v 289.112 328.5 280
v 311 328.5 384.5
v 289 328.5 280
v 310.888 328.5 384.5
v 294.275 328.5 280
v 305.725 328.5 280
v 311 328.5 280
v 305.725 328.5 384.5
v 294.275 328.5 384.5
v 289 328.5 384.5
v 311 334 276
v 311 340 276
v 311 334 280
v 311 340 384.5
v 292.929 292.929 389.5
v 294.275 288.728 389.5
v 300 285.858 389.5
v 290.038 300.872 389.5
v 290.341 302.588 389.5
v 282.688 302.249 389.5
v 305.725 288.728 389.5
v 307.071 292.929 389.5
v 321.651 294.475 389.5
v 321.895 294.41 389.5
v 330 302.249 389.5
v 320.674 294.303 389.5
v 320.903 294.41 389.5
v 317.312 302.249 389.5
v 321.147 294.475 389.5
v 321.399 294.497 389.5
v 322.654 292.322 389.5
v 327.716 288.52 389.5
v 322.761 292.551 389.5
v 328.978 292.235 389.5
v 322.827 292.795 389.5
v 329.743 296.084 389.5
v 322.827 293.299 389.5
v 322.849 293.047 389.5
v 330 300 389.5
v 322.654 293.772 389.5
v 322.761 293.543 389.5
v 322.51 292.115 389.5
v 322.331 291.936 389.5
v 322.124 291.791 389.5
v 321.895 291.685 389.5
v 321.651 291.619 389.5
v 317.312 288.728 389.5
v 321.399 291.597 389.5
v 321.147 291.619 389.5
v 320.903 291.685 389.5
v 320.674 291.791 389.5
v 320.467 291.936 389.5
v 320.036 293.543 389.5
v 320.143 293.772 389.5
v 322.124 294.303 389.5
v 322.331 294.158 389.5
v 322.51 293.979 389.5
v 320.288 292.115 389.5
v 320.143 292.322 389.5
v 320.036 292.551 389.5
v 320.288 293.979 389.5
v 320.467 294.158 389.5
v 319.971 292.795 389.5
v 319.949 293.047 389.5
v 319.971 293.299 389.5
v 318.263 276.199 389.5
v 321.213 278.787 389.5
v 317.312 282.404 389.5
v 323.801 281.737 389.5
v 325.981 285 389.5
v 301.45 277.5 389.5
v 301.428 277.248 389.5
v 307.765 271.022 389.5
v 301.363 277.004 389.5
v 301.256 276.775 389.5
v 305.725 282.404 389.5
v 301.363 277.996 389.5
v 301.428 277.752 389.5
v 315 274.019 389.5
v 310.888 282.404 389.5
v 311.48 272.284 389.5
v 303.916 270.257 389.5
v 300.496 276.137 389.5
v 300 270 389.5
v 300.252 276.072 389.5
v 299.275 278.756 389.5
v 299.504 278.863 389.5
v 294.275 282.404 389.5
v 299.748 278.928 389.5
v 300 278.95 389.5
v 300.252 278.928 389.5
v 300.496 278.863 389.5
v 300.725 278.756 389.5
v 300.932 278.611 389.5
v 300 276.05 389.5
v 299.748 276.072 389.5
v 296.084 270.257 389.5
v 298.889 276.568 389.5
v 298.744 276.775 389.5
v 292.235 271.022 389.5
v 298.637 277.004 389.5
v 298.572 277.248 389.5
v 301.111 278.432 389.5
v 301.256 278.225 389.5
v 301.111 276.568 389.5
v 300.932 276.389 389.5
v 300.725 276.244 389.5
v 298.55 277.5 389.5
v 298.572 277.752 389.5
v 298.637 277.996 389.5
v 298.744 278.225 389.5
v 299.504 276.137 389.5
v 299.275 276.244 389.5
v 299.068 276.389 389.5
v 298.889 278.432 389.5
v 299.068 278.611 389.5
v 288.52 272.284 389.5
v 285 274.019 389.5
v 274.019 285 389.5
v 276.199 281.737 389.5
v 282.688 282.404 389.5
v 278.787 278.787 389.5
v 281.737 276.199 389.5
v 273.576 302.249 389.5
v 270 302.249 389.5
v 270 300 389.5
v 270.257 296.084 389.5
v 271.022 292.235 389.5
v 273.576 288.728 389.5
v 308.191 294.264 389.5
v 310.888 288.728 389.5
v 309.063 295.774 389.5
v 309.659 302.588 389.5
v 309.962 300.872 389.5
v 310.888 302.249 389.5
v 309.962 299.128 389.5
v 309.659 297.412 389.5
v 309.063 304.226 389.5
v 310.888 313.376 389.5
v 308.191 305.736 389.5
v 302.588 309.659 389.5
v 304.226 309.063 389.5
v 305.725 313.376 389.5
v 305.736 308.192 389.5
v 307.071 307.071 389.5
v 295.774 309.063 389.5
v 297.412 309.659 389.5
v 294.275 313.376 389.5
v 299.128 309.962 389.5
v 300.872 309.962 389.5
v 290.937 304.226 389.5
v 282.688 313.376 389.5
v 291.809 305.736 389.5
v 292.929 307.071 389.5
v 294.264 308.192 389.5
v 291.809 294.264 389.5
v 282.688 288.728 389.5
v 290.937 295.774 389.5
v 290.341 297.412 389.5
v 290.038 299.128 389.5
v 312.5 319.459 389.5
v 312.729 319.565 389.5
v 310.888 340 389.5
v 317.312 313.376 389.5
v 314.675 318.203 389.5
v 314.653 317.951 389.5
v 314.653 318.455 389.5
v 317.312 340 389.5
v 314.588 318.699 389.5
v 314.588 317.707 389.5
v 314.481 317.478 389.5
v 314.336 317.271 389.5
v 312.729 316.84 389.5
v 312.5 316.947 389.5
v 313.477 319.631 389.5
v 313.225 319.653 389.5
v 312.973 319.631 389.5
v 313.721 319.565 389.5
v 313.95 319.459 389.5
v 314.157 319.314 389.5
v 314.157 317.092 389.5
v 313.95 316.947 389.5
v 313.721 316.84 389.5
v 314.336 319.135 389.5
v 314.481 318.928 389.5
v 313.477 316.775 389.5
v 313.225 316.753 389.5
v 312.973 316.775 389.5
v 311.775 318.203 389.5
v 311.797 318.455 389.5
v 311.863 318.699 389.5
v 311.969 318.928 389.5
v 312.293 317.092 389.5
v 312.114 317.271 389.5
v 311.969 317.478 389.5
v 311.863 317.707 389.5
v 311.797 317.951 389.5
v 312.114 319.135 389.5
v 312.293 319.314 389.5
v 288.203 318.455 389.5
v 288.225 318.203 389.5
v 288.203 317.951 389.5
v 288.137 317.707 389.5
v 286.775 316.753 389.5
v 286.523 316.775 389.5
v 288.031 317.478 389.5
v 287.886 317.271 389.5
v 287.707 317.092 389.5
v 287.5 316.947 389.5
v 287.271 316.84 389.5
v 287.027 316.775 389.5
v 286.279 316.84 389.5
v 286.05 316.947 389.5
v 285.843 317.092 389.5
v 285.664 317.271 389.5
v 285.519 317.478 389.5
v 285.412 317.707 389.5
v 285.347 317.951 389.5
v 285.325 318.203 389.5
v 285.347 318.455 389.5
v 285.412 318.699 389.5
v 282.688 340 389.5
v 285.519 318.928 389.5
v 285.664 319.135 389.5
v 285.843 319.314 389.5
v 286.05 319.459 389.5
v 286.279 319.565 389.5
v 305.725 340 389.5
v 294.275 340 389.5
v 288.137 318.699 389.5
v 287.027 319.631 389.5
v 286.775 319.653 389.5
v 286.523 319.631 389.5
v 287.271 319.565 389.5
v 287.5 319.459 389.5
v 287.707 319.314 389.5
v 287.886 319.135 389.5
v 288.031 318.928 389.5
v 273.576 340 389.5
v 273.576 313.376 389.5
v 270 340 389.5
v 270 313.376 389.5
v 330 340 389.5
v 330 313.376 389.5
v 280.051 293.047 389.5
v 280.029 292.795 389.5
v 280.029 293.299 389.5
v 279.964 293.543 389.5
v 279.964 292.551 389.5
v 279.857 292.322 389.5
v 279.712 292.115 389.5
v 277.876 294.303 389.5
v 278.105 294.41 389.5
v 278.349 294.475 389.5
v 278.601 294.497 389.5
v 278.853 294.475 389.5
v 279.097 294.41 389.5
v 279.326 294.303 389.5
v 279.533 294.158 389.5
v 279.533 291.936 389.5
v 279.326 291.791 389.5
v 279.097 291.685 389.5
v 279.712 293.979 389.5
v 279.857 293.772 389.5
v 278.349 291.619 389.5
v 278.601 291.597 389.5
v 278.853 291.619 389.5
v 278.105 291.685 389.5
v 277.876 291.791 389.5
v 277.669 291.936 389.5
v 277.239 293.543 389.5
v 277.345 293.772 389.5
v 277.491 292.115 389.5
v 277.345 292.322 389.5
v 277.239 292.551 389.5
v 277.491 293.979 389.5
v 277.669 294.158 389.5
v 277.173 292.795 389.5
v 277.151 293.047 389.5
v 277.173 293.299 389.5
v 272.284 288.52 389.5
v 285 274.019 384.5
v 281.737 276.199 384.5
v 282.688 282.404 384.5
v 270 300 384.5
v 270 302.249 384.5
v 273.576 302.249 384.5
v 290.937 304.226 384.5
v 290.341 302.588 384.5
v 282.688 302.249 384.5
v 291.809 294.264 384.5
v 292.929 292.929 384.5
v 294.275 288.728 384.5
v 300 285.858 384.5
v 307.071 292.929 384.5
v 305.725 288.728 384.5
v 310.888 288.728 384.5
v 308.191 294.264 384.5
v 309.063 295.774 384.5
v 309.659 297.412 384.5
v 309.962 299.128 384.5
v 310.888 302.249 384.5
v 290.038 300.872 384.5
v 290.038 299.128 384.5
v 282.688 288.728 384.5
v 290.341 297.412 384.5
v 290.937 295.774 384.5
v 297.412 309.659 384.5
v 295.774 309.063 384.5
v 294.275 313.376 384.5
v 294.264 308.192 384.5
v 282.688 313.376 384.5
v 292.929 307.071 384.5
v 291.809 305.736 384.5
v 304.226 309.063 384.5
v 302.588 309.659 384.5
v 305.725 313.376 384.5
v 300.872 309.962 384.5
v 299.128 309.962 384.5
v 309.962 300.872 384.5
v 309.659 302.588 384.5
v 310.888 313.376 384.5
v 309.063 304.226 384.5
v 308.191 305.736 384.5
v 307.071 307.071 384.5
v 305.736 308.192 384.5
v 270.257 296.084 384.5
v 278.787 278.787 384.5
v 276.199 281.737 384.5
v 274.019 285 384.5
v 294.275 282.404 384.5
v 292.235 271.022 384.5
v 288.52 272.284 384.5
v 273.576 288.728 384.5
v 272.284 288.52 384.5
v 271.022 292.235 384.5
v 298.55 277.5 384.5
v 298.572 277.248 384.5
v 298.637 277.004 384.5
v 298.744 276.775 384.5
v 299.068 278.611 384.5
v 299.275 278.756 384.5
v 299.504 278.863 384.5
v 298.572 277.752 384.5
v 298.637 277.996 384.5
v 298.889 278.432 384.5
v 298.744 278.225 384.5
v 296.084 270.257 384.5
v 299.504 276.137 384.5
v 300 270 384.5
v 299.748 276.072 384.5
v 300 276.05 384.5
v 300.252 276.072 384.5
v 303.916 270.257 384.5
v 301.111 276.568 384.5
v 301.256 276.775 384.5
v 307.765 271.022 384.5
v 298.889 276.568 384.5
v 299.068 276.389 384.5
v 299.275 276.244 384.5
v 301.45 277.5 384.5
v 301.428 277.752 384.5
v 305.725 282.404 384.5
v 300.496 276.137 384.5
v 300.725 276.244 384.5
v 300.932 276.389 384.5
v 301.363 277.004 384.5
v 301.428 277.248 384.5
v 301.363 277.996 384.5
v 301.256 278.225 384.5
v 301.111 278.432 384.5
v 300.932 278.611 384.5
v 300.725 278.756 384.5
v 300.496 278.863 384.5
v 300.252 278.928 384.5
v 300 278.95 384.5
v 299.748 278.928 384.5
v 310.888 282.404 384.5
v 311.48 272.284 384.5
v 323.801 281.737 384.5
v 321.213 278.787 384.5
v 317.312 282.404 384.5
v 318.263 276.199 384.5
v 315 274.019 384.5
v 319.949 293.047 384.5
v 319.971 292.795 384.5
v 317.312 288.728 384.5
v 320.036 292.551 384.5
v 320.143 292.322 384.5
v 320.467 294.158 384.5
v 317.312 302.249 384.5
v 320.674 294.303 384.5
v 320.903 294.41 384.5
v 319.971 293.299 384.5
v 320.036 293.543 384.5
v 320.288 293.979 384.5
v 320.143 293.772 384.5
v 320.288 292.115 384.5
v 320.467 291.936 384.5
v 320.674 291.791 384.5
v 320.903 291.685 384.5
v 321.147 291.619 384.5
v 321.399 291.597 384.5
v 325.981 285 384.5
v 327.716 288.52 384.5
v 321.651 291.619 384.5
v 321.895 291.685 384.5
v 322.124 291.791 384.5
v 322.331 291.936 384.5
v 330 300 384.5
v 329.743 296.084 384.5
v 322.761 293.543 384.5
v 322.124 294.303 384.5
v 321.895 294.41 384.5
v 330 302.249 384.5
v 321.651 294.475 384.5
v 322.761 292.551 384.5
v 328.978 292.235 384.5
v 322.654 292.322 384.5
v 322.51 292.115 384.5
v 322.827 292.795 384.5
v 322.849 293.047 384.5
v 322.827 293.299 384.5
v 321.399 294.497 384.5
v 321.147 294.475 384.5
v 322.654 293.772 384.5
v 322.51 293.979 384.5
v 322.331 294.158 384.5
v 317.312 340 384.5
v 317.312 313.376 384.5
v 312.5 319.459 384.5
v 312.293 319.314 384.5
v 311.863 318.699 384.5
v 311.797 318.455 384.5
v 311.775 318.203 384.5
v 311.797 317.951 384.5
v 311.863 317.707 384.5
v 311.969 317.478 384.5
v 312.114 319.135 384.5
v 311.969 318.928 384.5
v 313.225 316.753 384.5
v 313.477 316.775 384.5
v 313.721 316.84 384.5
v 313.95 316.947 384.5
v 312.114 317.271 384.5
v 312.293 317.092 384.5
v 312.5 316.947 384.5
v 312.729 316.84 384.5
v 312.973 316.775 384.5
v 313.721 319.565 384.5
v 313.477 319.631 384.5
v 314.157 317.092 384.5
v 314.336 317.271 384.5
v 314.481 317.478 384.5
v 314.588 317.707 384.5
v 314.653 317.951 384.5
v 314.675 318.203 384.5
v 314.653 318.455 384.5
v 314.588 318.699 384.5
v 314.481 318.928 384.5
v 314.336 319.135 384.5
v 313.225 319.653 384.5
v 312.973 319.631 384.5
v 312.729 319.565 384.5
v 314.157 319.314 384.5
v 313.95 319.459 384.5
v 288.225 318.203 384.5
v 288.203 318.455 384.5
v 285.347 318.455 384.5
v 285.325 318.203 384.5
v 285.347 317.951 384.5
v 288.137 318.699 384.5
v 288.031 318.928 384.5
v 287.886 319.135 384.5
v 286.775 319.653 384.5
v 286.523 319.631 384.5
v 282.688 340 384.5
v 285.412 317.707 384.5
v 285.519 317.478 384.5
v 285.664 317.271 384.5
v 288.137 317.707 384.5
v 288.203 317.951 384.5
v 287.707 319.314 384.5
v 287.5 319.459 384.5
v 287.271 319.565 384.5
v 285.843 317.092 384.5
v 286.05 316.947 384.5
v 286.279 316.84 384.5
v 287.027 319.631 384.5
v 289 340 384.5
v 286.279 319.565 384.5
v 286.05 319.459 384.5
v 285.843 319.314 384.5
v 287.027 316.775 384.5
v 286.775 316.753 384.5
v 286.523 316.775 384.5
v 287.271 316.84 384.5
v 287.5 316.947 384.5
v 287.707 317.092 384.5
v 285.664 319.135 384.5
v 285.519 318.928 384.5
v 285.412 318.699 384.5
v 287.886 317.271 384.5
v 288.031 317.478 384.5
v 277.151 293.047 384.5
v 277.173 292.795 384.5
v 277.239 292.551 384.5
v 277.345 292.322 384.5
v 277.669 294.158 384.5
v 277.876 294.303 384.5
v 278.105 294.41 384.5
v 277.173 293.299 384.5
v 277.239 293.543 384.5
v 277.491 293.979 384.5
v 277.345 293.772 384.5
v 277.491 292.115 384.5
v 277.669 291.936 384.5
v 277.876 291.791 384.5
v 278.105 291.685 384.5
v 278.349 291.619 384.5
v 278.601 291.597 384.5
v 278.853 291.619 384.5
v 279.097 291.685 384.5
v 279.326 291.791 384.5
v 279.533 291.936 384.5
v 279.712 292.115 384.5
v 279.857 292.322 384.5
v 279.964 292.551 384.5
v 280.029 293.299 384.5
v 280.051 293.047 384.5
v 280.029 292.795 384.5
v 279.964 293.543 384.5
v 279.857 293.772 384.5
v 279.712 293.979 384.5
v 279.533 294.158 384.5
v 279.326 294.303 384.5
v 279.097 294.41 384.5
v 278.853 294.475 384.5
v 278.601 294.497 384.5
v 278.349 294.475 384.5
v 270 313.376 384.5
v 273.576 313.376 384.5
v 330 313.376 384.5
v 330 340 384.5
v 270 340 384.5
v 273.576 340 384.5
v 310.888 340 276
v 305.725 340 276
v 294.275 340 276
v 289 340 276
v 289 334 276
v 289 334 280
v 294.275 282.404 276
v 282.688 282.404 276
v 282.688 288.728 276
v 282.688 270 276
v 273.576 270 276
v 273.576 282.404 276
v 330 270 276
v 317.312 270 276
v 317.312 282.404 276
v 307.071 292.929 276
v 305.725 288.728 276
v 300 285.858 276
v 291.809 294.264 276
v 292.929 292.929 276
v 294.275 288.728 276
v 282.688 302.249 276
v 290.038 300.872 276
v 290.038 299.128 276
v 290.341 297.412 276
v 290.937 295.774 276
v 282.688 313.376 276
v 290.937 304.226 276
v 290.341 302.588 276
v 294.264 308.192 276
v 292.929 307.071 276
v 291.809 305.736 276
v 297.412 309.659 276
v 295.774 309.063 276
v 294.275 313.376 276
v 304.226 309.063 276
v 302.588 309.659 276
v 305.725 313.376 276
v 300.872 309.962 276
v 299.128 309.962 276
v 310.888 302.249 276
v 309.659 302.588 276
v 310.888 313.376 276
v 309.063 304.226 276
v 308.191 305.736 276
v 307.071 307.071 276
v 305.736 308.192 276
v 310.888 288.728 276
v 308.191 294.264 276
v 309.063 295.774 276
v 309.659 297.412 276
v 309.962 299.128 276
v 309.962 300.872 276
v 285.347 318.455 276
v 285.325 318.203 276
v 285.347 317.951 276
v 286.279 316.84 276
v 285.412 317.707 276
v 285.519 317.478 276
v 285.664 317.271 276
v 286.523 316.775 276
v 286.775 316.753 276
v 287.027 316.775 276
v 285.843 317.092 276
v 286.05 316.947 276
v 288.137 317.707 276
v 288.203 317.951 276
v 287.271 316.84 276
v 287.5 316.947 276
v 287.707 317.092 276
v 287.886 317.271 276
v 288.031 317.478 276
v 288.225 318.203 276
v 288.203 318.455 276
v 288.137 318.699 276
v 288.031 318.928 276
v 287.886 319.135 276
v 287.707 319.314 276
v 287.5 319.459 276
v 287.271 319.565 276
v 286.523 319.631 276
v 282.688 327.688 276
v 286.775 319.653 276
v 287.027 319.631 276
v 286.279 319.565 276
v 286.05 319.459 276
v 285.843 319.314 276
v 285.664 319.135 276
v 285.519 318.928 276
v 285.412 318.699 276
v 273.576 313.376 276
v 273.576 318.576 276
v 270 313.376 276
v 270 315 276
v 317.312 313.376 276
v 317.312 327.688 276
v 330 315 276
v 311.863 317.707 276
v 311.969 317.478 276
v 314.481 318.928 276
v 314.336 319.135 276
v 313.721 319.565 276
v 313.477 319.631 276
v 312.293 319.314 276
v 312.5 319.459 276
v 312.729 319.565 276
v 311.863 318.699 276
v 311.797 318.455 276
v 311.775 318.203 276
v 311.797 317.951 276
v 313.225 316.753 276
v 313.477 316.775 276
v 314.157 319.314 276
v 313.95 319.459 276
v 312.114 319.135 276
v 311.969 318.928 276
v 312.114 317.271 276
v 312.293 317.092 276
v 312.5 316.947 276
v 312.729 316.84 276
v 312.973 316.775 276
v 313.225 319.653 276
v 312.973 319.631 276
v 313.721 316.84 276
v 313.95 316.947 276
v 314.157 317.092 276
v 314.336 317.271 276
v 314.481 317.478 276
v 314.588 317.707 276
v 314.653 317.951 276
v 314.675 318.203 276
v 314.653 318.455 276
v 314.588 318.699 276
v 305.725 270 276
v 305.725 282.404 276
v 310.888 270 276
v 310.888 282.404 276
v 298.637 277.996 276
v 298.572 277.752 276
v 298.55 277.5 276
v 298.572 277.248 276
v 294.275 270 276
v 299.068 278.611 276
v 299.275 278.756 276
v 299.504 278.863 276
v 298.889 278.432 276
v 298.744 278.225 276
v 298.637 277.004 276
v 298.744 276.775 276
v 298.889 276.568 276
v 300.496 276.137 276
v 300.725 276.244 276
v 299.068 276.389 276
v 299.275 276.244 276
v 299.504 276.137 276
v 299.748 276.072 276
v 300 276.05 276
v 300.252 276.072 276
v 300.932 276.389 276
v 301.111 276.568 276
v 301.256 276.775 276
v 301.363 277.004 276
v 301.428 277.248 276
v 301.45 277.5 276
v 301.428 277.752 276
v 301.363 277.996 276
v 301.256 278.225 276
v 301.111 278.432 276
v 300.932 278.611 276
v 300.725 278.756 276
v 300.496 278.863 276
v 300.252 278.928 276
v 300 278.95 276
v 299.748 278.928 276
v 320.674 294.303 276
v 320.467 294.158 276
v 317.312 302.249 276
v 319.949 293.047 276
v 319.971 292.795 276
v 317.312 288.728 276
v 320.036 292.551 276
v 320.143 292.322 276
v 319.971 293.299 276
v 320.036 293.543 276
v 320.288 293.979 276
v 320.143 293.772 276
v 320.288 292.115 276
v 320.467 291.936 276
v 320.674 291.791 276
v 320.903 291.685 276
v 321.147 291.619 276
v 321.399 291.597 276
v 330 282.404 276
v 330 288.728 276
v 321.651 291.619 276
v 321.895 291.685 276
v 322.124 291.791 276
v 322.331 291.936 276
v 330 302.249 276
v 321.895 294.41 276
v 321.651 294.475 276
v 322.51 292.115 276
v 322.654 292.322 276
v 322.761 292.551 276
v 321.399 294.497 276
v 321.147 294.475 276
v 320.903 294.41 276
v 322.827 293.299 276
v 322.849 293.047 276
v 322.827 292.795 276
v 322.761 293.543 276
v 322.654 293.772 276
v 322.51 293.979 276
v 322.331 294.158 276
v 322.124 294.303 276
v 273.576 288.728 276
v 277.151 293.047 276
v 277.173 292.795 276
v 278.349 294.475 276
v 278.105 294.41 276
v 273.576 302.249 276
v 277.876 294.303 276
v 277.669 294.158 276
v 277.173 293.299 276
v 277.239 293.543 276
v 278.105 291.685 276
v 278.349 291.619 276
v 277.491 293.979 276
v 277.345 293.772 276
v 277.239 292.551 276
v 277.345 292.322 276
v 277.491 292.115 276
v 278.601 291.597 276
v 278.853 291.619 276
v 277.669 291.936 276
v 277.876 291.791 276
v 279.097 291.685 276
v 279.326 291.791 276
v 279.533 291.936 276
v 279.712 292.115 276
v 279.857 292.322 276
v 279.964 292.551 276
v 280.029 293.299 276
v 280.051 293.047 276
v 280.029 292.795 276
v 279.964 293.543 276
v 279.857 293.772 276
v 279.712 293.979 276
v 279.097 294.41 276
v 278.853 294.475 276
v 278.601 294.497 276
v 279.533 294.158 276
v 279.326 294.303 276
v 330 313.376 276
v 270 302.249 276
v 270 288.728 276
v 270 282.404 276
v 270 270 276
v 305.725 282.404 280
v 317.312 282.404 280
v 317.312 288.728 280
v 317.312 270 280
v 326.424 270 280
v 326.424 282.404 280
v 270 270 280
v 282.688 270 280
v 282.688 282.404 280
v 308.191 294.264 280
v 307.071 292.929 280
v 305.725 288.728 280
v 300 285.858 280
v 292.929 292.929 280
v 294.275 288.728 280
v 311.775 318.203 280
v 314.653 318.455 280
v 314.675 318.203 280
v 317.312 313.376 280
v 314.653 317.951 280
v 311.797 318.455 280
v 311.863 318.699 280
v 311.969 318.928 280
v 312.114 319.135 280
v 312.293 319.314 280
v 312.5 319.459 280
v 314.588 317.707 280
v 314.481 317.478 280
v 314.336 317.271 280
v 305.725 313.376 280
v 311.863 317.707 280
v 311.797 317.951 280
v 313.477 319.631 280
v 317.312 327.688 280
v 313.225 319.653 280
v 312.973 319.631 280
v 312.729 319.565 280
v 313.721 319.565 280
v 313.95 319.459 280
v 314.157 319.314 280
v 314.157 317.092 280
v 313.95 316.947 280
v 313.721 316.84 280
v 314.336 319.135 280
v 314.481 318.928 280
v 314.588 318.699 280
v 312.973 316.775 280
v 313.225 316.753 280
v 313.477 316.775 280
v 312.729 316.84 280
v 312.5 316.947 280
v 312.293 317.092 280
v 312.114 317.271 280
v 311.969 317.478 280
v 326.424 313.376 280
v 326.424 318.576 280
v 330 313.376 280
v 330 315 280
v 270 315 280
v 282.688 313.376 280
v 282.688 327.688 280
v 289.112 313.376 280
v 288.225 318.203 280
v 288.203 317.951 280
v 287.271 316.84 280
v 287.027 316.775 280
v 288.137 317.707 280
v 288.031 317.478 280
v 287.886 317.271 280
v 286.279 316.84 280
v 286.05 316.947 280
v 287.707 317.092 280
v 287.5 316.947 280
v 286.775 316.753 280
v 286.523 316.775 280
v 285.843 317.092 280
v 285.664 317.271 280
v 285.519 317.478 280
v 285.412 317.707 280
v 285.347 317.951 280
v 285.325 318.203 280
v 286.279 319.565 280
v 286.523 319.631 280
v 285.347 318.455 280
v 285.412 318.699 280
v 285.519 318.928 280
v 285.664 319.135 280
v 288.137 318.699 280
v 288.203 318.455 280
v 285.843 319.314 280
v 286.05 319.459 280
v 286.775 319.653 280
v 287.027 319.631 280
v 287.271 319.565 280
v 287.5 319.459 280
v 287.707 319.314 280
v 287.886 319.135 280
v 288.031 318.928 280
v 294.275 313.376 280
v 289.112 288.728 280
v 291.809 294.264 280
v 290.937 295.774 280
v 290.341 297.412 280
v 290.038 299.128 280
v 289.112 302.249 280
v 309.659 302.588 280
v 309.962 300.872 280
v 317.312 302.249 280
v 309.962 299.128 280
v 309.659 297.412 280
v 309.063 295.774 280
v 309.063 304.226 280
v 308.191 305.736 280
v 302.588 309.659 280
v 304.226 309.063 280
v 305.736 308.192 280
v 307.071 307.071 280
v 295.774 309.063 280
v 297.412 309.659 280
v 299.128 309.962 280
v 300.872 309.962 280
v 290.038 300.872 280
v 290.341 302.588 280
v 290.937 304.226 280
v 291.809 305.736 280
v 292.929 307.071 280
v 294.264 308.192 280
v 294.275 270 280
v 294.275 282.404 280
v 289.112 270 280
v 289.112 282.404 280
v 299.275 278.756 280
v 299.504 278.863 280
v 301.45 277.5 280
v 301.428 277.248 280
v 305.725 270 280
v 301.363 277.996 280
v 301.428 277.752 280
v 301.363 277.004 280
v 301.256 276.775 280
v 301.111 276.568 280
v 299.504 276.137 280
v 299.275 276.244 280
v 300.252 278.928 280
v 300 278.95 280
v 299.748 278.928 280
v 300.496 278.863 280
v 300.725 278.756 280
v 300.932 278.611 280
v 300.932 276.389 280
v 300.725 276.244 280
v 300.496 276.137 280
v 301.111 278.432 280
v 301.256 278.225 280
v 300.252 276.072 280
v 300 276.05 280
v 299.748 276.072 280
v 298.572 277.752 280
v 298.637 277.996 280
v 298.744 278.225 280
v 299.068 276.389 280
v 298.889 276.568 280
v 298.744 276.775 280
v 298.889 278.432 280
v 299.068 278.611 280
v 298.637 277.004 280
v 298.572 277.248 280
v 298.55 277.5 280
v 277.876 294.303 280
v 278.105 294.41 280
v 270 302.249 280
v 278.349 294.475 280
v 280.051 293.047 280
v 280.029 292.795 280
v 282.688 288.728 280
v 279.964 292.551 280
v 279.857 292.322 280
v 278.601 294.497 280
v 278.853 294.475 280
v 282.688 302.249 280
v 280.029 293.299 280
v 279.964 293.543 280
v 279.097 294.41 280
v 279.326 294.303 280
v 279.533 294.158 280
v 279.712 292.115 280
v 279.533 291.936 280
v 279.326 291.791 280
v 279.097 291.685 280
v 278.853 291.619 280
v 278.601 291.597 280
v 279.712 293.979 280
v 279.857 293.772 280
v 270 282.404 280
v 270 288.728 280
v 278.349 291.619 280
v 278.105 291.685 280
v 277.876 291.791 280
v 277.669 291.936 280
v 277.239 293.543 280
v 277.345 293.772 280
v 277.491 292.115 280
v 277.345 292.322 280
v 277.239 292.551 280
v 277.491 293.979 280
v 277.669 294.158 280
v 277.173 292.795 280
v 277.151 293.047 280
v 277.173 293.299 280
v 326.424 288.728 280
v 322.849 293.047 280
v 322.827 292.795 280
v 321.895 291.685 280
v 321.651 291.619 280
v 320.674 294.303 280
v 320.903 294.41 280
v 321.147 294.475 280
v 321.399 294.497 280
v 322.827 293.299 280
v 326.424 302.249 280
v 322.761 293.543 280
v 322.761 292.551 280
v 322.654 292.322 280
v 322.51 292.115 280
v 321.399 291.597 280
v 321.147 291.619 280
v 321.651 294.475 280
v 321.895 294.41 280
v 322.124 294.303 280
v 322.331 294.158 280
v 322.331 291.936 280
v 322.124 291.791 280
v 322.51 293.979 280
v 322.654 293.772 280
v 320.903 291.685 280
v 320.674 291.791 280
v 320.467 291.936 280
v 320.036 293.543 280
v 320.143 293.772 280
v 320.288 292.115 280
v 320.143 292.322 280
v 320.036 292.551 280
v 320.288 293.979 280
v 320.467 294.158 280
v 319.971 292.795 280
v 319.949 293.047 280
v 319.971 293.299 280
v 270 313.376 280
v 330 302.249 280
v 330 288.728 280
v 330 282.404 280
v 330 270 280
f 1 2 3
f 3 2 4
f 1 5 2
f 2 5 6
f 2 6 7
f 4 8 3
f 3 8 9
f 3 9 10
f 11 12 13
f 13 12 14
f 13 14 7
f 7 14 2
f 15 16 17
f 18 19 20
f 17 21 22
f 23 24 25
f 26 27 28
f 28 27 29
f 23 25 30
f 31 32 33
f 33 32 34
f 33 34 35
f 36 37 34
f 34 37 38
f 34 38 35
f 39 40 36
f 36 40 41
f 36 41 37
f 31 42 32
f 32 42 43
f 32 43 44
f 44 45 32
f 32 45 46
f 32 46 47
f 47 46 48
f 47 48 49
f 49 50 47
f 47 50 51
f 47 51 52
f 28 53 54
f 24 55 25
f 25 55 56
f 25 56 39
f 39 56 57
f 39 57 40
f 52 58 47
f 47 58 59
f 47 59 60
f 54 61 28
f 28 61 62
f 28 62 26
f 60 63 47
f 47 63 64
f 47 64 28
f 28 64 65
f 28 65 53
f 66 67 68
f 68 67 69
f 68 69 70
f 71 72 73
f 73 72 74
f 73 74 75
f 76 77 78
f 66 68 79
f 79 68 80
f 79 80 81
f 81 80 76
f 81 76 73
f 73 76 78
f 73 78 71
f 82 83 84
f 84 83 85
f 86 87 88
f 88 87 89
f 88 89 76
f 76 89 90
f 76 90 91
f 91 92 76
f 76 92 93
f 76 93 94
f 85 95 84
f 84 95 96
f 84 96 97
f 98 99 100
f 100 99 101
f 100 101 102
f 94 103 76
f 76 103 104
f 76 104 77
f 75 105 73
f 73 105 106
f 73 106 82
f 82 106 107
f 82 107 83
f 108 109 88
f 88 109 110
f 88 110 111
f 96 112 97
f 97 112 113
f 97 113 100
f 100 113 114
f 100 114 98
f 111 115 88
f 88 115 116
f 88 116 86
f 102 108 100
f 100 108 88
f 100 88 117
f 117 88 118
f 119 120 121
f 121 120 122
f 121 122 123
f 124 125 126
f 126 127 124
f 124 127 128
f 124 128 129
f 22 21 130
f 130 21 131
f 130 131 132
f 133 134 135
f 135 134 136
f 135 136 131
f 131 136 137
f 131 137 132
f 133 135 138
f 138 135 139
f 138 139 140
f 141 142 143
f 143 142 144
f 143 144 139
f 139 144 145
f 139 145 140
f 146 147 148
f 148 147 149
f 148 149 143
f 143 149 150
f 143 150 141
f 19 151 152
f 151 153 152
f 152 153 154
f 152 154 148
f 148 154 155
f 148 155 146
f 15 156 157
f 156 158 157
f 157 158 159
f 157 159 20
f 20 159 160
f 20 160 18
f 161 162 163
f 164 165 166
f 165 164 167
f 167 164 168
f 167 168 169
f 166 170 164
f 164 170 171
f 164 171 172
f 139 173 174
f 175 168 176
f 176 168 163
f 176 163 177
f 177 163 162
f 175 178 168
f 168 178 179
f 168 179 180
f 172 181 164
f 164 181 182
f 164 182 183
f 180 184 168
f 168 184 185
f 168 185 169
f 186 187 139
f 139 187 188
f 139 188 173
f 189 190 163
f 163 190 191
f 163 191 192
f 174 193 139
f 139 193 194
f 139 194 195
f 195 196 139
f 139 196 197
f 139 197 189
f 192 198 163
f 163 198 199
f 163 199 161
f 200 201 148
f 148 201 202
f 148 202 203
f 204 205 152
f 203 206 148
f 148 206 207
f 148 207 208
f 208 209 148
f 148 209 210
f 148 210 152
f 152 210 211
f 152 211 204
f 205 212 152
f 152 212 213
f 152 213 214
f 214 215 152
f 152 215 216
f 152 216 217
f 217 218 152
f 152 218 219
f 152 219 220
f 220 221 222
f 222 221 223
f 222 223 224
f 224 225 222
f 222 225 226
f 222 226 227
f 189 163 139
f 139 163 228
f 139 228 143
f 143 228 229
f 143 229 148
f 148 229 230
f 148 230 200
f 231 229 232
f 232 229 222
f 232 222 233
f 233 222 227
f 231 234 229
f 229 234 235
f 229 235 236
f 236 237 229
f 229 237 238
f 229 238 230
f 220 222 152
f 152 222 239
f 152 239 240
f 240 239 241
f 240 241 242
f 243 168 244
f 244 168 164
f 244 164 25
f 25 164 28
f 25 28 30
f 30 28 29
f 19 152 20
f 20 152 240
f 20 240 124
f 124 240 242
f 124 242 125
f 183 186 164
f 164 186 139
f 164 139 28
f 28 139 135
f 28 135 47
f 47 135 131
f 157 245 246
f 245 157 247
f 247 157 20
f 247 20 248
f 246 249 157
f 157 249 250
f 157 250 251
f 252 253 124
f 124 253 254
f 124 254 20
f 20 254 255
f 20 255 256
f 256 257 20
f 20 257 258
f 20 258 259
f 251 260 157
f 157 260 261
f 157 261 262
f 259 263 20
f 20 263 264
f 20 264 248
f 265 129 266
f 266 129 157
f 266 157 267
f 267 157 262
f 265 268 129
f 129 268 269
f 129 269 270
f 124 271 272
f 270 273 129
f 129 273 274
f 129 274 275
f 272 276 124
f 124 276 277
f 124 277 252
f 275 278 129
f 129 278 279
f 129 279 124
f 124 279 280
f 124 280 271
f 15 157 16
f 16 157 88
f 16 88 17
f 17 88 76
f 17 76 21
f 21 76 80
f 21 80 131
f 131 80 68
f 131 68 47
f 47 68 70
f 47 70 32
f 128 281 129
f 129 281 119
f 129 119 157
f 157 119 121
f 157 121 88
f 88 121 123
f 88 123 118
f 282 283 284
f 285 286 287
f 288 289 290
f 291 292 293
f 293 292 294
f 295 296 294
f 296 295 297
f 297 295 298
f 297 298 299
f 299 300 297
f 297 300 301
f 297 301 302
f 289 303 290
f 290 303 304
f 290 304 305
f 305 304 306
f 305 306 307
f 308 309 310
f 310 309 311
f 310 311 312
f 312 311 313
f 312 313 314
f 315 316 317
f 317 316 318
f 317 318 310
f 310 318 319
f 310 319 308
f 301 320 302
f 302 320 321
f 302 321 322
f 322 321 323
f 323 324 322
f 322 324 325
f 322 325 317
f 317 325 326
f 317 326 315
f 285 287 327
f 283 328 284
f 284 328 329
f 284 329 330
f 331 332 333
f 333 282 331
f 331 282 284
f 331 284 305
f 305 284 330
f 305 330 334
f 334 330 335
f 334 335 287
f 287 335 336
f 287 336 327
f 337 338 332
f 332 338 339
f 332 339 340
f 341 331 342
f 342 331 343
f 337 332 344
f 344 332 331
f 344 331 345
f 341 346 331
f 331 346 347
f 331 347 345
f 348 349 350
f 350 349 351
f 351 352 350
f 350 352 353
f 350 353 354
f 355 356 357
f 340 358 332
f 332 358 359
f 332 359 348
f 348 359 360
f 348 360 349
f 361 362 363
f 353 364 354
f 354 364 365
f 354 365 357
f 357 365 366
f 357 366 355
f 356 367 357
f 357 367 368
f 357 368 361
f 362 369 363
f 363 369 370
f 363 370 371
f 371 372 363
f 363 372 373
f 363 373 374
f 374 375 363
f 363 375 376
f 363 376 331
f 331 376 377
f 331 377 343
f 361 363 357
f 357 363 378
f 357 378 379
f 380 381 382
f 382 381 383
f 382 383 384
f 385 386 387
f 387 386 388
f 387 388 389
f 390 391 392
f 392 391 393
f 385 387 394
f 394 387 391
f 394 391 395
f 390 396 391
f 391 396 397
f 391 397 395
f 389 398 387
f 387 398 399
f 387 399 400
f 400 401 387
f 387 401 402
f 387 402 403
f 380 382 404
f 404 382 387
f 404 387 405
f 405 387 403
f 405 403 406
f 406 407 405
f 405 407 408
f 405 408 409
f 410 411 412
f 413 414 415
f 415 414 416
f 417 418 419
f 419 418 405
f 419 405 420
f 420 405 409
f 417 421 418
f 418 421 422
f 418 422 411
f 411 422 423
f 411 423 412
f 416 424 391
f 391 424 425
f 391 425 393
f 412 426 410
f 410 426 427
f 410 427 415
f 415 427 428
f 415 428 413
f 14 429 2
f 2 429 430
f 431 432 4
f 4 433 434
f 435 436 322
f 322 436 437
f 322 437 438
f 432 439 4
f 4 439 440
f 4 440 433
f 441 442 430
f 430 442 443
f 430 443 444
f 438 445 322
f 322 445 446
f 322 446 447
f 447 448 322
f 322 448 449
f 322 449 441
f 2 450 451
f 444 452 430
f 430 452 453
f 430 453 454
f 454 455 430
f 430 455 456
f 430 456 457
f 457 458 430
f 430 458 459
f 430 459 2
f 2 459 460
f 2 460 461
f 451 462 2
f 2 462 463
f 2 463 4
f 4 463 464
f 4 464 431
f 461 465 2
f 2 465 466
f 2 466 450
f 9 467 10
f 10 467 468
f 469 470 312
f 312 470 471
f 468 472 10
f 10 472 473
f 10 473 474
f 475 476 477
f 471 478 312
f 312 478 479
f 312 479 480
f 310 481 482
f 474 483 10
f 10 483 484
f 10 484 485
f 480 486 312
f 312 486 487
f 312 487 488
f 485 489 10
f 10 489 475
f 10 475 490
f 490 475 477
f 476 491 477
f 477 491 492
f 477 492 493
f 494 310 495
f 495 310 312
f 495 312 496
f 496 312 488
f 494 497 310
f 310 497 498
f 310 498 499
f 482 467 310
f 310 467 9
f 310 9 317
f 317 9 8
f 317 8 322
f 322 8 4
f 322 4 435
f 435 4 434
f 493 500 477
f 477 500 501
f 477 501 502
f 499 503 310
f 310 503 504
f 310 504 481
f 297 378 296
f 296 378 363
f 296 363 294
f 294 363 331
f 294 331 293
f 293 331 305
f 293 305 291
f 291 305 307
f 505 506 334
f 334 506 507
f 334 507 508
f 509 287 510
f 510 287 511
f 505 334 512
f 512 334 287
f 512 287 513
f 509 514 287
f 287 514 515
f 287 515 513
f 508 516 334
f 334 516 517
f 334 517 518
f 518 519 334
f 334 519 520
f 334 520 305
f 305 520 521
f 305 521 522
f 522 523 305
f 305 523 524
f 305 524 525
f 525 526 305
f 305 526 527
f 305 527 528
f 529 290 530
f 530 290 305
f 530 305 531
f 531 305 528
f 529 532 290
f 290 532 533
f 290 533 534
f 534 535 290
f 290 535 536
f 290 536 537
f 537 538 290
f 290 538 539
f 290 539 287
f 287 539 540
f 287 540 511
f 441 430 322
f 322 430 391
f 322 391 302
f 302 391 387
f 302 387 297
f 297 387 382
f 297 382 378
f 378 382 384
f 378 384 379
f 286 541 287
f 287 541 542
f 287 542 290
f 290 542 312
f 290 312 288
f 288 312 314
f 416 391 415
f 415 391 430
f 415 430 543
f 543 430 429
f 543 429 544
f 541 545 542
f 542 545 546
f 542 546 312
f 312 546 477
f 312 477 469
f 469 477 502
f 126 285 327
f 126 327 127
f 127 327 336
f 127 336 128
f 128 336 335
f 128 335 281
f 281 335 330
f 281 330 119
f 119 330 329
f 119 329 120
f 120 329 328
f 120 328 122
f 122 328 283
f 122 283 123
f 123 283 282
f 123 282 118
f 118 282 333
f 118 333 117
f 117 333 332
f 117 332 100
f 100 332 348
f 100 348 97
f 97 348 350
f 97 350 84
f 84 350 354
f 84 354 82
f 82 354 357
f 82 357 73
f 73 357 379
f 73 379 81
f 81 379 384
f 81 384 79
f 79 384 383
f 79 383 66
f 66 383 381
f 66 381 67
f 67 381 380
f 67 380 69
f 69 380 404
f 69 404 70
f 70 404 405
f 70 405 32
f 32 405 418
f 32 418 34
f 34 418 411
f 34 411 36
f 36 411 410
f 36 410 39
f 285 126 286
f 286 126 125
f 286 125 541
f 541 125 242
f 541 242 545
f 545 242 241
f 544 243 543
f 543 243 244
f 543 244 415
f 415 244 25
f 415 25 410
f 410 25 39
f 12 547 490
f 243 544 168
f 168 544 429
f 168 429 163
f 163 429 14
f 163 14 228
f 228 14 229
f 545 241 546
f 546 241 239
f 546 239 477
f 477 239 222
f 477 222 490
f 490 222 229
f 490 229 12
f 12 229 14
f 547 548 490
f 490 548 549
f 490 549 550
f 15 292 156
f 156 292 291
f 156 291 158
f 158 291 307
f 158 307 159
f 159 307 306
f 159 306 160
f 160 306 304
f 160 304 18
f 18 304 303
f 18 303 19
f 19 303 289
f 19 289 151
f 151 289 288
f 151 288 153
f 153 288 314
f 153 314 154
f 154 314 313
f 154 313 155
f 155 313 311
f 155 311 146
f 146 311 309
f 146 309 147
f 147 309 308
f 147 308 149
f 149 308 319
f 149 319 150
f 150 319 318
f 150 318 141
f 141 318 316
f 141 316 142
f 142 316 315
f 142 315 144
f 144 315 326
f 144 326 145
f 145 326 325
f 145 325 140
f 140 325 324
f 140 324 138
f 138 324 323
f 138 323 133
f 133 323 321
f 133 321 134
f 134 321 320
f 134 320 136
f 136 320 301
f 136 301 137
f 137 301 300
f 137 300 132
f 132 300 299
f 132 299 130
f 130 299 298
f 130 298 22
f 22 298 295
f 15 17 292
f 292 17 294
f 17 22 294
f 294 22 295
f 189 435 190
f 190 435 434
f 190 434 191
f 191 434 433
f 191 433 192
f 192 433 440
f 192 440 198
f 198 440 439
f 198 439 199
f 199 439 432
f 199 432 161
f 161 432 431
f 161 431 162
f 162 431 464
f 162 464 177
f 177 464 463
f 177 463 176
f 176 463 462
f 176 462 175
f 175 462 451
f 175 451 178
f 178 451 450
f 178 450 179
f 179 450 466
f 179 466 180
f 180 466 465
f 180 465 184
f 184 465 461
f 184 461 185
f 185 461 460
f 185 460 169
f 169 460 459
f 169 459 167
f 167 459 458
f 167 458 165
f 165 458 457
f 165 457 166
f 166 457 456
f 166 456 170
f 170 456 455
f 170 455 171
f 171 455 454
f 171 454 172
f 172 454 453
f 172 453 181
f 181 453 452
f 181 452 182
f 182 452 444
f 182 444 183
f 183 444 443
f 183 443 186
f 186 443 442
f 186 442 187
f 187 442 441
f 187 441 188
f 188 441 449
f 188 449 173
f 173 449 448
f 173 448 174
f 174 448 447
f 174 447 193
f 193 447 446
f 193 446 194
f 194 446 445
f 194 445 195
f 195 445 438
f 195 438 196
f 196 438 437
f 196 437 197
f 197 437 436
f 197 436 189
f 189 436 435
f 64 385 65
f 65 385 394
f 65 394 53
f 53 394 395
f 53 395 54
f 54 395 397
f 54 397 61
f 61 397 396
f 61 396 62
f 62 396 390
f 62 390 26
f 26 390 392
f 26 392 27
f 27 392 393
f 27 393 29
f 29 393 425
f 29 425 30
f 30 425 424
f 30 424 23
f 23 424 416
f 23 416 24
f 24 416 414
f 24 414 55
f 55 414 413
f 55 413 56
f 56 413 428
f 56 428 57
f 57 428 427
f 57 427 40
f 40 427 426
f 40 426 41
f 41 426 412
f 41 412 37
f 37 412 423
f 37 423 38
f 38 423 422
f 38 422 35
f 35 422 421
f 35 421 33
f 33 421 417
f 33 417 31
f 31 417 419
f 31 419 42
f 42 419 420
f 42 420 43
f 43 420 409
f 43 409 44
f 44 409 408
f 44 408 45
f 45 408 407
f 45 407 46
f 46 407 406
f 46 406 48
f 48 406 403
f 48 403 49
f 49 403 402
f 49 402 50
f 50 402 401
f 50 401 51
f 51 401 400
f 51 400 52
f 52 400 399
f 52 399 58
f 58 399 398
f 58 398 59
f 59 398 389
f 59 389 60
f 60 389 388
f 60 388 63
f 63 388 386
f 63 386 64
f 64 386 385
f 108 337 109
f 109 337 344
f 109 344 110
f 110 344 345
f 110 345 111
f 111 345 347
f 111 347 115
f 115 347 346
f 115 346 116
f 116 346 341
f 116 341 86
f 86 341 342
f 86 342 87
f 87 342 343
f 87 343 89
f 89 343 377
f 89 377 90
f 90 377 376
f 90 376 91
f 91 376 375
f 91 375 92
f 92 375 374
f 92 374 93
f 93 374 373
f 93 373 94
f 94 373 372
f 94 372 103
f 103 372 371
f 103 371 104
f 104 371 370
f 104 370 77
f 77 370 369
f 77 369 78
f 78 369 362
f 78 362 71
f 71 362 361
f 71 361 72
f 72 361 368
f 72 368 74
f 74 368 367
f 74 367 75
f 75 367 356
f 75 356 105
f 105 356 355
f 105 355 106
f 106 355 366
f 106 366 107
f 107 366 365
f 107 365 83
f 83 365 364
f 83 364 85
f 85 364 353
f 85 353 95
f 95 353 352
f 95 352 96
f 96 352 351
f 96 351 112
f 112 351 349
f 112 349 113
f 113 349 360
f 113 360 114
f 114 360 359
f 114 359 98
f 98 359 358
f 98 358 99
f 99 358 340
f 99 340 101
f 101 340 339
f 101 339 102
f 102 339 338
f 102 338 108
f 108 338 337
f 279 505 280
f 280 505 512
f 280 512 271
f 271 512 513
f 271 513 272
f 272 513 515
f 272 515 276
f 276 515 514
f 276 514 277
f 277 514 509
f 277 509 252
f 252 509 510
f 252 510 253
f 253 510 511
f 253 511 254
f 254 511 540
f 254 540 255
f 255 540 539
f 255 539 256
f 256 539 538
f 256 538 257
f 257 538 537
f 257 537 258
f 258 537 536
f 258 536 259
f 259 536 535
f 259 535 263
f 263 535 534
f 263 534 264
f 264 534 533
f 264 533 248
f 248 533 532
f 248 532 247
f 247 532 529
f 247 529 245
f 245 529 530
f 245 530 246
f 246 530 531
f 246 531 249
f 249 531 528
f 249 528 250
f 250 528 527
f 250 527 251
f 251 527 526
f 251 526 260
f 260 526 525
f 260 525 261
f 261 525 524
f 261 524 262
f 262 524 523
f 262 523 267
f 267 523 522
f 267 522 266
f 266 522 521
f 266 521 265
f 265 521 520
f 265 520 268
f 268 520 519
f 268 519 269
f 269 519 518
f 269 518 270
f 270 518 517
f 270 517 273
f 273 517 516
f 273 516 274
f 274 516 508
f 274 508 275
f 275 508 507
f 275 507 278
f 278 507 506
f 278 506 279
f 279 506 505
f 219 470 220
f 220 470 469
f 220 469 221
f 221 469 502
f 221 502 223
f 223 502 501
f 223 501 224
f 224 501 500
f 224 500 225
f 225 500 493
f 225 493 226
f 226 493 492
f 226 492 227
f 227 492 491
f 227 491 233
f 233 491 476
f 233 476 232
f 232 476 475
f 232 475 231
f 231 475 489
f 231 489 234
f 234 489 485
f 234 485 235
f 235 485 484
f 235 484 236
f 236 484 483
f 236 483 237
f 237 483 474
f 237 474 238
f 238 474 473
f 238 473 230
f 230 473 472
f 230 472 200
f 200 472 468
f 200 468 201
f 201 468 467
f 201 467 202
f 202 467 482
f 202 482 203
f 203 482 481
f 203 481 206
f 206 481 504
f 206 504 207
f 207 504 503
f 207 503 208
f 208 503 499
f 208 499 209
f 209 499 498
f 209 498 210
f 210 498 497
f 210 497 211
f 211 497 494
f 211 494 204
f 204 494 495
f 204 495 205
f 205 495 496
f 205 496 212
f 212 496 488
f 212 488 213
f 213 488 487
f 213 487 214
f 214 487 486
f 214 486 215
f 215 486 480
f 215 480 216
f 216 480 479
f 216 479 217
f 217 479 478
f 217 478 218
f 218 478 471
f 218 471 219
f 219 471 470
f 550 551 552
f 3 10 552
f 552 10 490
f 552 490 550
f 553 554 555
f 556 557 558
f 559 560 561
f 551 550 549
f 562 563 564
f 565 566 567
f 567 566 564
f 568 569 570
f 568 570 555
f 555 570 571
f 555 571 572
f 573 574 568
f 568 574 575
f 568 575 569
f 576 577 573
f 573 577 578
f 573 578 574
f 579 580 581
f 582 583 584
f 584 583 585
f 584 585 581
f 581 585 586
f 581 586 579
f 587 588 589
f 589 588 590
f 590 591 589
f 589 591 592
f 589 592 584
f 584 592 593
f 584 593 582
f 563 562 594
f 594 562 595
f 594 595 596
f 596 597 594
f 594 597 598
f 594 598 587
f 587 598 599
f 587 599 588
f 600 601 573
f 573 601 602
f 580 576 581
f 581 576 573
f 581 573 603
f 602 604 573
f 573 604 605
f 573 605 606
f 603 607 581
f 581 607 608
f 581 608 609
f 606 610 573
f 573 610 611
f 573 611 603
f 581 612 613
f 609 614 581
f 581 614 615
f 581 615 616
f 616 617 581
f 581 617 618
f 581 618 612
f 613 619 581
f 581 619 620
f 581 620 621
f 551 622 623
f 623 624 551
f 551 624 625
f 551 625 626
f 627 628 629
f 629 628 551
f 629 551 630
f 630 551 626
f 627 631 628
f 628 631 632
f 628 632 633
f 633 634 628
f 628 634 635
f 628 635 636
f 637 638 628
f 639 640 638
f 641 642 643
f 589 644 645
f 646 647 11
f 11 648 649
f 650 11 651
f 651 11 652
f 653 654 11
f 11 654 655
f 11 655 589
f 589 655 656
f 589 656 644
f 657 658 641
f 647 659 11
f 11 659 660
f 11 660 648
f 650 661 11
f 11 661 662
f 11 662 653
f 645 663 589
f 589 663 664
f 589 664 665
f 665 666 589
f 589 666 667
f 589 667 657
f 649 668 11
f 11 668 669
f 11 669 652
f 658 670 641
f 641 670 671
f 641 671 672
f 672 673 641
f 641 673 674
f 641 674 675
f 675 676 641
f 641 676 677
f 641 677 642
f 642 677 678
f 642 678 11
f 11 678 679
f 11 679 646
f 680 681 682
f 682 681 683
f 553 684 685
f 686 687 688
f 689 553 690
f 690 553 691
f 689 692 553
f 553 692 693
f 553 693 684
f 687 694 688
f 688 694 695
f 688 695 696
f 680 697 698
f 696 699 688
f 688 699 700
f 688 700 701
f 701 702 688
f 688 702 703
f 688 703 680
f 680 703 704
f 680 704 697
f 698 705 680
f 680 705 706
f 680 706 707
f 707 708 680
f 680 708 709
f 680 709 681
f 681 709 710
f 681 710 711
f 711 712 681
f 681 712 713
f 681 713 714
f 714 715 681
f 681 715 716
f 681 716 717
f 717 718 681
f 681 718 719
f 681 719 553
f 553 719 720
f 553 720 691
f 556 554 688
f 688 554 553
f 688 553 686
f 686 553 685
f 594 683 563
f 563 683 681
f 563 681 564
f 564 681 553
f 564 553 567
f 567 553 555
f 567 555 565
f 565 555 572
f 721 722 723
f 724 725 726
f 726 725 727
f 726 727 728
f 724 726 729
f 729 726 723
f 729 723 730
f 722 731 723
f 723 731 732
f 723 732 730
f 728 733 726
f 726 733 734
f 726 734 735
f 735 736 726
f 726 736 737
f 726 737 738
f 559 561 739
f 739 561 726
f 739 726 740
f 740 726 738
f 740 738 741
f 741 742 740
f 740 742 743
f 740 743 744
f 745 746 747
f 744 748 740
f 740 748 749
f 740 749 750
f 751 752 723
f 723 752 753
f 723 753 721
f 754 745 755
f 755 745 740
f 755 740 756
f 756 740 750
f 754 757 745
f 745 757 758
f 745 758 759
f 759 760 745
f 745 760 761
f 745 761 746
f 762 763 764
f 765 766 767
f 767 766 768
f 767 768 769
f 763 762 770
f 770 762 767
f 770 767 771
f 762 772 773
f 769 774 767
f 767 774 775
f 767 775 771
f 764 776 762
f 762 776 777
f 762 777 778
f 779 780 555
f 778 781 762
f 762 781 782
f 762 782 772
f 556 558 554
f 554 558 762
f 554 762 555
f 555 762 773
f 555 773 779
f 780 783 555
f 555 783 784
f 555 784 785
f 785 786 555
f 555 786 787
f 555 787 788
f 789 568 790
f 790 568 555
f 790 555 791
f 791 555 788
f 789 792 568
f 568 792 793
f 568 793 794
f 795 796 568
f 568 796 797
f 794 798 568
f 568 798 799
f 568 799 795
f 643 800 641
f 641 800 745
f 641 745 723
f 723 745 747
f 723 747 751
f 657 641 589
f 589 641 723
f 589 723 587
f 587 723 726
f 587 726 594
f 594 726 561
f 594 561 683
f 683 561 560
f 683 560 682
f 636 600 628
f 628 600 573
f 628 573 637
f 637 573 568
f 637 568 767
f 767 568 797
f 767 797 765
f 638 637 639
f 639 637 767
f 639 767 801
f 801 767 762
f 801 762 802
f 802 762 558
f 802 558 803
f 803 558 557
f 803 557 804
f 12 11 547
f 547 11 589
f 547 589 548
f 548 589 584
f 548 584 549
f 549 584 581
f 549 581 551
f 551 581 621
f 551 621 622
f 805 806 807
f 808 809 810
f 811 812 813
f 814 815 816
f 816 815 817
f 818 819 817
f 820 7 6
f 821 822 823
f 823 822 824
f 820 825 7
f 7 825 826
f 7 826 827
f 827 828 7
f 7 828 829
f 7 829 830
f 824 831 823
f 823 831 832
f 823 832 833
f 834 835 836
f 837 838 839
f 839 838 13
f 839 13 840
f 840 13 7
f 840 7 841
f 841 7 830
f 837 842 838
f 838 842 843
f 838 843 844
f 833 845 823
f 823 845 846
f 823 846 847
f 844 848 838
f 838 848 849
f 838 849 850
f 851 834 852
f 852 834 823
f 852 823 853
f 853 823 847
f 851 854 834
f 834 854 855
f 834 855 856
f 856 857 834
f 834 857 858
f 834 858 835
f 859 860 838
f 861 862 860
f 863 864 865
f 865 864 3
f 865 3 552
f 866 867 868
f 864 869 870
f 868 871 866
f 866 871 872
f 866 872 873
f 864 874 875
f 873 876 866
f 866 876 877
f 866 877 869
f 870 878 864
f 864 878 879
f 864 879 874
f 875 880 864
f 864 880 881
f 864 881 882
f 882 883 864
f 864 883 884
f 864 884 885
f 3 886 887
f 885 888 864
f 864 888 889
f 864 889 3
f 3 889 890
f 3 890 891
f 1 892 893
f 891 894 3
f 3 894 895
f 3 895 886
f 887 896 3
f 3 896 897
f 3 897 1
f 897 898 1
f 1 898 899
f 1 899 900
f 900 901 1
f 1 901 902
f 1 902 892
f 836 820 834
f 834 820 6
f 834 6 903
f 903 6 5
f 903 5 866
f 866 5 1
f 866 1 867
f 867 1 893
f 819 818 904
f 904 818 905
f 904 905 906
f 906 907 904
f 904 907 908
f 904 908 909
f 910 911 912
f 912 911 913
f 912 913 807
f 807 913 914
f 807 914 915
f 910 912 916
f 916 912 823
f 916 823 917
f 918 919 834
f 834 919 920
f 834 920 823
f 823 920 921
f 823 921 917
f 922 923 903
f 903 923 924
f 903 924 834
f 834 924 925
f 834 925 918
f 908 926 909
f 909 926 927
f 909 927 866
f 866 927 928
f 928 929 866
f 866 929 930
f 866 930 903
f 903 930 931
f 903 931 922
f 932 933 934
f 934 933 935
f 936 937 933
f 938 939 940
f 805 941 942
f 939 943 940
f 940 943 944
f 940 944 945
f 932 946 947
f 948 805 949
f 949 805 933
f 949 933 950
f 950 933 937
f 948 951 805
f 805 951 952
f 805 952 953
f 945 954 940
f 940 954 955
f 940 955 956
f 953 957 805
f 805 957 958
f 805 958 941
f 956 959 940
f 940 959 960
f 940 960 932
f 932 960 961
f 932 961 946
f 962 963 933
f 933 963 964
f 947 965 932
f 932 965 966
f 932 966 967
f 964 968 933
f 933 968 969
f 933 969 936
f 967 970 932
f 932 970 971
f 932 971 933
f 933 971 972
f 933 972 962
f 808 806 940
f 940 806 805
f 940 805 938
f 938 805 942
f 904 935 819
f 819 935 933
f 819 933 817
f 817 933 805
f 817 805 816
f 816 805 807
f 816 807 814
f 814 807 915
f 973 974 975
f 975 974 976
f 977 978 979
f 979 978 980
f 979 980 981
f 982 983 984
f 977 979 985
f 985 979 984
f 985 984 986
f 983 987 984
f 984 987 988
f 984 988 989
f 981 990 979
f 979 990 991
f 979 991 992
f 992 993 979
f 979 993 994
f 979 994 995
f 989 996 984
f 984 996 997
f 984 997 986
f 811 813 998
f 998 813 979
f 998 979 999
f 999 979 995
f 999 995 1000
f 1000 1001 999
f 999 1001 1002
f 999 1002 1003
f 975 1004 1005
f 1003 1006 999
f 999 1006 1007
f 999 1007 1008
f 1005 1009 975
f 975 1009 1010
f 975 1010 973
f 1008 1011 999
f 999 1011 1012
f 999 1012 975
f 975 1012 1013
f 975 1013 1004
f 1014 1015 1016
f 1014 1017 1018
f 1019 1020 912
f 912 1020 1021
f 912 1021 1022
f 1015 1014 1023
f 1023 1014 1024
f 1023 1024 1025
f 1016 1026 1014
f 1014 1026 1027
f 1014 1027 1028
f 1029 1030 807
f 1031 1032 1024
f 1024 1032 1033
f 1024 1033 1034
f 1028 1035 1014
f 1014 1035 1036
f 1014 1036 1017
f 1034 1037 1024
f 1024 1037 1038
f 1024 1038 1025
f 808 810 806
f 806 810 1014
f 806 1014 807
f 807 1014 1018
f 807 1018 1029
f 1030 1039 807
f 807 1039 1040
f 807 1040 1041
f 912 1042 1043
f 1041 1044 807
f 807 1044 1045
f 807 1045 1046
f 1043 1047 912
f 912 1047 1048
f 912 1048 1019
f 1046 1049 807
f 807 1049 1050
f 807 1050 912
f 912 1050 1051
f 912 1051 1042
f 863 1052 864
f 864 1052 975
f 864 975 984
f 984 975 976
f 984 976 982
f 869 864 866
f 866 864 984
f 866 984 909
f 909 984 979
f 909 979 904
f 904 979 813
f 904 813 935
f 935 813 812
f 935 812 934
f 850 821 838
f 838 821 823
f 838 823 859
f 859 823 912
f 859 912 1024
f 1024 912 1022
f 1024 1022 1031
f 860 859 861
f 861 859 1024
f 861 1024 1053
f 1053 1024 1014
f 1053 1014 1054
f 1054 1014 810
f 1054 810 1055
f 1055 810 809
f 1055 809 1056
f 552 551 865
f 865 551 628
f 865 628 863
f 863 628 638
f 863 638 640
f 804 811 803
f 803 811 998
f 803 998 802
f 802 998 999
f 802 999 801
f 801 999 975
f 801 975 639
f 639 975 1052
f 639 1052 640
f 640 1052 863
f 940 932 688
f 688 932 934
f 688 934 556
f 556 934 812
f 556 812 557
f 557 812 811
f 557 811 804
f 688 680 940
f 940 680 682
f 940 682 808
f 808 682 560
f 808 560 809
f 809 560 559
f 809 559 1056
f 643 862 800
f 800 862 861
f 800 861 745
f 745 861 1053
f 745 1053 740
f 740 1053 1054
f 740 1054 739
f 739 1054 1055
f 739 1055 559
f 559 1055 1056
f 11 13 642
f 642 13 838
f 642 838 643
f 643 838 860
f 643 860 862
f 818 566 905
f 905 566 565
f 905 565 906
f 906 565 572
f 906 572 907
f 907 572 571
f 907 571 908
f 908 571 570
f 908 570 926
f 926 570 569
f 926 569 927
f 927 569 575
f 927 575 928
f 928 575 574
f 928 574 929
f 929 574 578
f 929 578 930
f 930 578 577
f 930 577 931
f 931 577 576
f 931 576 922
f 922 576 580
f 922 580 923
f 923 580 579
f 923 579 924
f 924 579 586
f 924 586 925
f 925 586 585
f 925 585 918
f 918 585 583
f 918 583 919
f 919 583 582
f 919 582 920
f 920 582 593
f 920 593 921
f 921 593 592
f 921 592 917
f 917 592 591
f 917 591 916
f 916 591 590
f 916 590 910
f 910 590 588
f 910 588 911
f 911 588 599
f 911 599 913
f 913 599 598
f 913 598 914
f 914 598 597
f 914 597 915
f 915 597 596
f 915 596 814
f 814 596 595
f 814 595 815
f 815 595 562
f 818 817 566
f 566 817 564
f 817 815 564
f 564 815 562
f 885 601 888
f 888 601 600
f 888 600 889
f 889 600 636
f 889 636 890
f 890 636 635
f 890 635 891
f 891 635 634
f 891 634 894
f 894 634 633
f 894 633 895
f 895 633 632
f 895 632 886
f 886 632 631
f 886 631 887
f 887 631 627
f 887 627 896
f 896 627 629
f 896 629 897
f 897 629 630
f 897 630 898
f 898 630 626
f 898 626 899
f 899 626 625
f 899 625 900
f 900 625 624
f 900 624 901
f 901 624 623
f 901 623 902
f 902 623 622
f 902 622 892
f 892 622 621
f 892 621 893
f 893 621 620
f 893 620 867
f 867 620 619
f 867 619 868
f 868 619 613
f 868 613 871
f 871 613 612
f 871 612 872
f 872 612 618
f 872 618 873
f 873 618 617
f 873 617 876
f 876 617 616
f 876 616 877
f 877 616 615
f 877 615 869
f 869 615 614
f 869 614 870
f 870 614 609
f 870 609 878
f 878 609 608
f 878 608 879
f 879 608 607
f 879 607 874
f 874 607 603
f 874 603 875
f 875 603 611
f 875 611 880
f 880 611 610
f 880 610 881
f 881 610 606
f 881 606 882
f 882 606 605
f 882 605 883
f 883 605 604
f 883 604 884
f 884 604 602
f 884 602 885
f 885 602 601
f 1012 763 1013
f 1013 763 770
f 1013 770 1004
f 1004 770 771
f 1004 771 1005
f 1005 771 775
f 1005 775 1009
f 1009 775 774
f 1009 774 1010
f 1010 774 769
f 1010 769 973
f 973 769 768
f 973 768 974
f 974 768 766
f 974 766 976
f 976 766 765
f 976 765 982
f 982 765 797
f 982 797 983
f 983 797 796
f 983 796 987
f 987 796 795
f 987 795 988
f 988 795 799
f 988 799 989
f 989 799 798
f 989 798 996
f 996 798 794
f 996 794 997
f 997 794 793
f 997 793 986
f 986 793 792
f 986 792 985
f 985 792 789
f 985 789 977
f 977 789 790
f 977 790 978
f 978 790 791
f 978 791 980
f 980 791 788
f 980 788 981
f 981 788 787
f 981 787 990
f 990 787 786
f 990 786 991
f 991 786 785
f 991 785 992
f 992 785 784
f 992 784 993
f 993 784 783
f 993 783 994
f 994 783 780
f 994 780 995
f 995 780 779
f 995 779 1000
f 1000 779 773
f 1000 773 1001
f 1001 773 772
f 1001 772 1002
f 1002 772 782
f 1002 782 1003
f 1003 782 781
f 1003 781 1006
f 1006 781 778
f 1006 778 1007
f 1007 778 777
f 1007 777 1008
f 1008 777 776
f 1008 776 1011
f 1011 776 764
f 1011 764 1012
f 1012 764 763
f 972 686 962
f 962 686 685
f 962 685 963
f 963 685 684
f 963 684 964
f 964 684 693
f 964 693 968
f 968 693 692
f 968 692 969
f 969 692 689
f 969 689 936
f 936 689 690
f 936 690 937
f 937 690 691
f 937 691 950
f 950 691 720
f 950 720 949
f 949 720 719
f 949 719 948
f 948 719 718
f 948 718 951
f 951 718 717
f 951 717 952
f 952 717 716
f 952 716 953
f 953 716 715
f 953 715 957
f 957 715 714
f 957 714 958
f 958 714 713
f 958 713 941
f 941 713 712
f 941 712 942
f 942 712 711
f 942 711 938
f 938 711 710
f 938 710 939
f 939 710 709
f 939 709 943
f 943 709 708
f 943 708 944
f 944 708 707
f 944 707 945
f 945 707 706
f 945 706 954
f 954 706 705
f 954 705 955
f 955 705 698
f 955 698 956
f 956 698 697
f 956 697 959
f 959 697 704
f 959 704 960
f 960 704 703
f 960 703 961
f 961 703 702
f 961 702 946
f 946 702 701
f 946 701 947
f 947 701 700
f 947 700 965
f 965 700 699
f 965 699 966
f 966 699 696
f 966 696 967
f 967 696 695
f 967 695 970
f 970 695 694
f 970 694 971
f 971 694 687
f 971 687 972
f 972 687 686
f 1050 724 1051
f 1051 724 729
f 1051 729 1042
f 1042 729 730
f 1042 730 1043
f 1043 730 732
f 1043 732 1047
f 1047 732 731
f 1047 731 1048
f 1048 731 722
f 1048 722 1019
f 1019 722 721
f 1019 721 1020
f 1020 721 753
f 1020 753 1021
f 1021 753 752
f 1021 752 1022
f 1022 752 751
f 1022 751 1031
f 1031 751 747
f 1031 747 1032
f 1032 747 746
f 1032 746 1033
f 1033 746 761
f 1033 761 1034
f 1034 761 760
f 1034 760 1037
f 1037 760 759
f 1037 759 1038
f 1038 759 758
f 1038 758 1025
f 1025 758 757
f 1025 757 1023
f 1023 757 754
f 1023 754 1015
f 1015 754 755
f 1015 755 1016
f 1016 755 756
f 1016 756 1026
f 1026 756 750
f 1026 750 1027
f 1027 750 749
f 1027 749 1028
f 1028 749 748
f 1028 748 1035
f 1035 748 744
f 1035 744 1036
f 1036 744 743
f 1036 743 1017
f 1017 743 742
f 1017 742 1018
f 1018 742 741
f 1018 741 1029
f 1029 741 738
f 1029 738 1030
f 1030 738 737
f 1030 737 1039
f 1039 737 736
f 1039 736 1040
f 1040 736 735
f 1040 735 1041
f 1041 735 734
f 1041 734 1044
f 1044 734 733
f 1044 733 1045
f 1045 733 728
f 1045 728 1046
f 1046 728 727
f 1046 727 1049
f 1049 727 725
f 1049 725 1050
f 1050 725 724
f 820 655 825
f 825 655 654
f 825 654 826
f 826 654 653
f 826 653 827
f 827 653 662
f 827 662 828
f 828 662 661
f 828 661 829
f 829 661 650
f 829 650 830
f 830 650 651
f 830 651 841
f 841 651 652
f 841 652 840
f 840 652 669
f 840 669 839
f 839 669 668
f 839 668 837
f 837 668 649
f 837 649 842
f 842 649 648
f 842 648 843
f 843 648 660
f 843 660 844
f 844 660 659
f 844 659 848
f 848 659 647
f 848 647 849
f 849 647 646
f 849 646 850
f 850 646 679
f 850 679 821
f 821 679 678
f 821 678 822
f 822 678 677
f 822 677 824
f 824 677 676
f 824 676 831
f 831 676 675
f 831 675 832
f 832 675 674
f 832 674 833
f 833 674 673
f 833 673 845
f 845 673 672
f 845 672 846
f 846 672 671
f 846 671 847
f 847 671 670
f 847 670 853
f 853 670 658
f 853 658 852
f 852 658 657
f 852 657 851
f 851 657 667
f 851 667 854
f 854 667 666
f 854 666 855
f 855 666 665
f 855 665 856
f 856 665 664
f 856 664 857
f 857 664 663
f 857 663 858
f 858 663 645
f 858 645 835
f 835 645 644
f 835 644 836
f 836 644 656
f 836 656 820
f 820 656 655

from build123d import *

# Parameters (mm, degrees)
SKETCH1_R           = 30
BOSS_EXTRUDE1_DEPTH = 5
SKETCH2_W           = 60
SKETCH2_H           = 40
BOSS_EXTRUDE2_DEPTH = 5
SKETCH3_R           = 1.45
CUT_EXTRUDE1_DEPTH  = 5
SKETCH4_R           = 1.45
BOSS_EXTRUDE3_DEPTH = 4
SKETCH5_W           = 22
SKETCH5_H           = 11.5
BOSS_EXTRUDE4_DEPTH = 108.5


with BuildPart() as part:
    # Sketch1 → Boss-Extrude1 (new body)
    with BuildSketch(Plane.XY.offset(384.5)):
        with Locations((300, 300)):
            Circle(SKETCH1_R)
    extrude(amount=BOSS_EXTRUDE1_DEPTH)

    # Sketch2 → Boss-Extrude2 (add)
    with BuildSketch(Plane.XY.offset(384.5)):
        with Locations((300, 320)):
            Rectangle(SKETCH2_W, SKETCH2_H)
    extrude(amount=BOSS_EXTRUDE2_DEPTH)

    # Sketch3 → Cut-Extrude1 (cut)
    with BuildSketch(Plane.XY.offset(384.5)):
        with Locations((286.774831823, 318.202882373)):
            Circle(SKETCH3_R)
        with Locations((278.601228383, 293.047117627)):
            Circle(SKETCH3_R)
        with Locations((300, 277.5)):
            Circle(SKETCH3_R)
        with Locations((321.398771617, 293.047117627)):
            Circle(SKETCH3_R)
        with Locations((313.225168177, 318.202882373)):
            Circle(SKETCH3_R)
        with BuildLine():
            Line((292.928932188, 292.928932188), (300, 285.857864376))
            Line((300, 285.857864376), (307.071067812, 292.928932188))
            ThreePointArc((307.071067812, 292.928932188), (300, 310), (292.928932188, 292.928932188))
        make_face()
    extrude(amount=CUT_EXTRUDE1_DEPTH, mode=Mode.SUBTRACT)



with BuildPart() as body_2:
    # Sketch4 → Boss-Extrude3 (new body)
    with BuildSketch(Plane.XY.offset(276)):
        Polygon((289, 340), (311, 340), (311, 334), (330, 315), (330, 270), (270, 270), (270, 315), (289, 334), align=None)
        with Locations((286.774831823, 318.202882373)):
            Circle(SKETCH4_R, mode=Mode.SUBTRACT)
        with Locations((278.601228383, 293.047117627)):
            Circle(SKETCH4_R, mode=Mode.SUBTRACT)
        with Locations((300, 277.5)):
            Circle(SKETCH4_R, mode=Mode.SUBTRACT)
        with Locations((321.398771617, 293.047117627)):
            Circle(SKETCH4_R, mode=Mode.SUBTRACT)
        with Locations((313.225168177, 318.202882373)):
            Circle(SKETCH4_R, mode=Mode.SUBTRACT)
        with BuildLine():
            Line((292.928932188, 292.928932188), (300, 285.857864376))
            Line((300, 285.857864376), (307.071067812, 292.928932188))
            ThreePointArc((307.071067812, 292.928932188), (300, 310), (292.928932188, 292.928932188))
        make_face(mode=Mode.SUBTRACT)
    extrude(amount=BOSS_EXTRUDE3_DEPTH)


with BuildPart() as part_1:
    add(part.part)

    add(body_2.part)  # Boss-Extrude4 merges body 2
    # Sketch5 → Boss-Extrude4 (add)
    with BuildSketch(Plane.XY.offset(276)):
        with Locations((300, 334.25)):
            Rectangle(SKETCH5_W, SKETCH5_H)
    extrude(amount=BOSS_EXTRUDE4_DEPTH)


solid = part_1.part
